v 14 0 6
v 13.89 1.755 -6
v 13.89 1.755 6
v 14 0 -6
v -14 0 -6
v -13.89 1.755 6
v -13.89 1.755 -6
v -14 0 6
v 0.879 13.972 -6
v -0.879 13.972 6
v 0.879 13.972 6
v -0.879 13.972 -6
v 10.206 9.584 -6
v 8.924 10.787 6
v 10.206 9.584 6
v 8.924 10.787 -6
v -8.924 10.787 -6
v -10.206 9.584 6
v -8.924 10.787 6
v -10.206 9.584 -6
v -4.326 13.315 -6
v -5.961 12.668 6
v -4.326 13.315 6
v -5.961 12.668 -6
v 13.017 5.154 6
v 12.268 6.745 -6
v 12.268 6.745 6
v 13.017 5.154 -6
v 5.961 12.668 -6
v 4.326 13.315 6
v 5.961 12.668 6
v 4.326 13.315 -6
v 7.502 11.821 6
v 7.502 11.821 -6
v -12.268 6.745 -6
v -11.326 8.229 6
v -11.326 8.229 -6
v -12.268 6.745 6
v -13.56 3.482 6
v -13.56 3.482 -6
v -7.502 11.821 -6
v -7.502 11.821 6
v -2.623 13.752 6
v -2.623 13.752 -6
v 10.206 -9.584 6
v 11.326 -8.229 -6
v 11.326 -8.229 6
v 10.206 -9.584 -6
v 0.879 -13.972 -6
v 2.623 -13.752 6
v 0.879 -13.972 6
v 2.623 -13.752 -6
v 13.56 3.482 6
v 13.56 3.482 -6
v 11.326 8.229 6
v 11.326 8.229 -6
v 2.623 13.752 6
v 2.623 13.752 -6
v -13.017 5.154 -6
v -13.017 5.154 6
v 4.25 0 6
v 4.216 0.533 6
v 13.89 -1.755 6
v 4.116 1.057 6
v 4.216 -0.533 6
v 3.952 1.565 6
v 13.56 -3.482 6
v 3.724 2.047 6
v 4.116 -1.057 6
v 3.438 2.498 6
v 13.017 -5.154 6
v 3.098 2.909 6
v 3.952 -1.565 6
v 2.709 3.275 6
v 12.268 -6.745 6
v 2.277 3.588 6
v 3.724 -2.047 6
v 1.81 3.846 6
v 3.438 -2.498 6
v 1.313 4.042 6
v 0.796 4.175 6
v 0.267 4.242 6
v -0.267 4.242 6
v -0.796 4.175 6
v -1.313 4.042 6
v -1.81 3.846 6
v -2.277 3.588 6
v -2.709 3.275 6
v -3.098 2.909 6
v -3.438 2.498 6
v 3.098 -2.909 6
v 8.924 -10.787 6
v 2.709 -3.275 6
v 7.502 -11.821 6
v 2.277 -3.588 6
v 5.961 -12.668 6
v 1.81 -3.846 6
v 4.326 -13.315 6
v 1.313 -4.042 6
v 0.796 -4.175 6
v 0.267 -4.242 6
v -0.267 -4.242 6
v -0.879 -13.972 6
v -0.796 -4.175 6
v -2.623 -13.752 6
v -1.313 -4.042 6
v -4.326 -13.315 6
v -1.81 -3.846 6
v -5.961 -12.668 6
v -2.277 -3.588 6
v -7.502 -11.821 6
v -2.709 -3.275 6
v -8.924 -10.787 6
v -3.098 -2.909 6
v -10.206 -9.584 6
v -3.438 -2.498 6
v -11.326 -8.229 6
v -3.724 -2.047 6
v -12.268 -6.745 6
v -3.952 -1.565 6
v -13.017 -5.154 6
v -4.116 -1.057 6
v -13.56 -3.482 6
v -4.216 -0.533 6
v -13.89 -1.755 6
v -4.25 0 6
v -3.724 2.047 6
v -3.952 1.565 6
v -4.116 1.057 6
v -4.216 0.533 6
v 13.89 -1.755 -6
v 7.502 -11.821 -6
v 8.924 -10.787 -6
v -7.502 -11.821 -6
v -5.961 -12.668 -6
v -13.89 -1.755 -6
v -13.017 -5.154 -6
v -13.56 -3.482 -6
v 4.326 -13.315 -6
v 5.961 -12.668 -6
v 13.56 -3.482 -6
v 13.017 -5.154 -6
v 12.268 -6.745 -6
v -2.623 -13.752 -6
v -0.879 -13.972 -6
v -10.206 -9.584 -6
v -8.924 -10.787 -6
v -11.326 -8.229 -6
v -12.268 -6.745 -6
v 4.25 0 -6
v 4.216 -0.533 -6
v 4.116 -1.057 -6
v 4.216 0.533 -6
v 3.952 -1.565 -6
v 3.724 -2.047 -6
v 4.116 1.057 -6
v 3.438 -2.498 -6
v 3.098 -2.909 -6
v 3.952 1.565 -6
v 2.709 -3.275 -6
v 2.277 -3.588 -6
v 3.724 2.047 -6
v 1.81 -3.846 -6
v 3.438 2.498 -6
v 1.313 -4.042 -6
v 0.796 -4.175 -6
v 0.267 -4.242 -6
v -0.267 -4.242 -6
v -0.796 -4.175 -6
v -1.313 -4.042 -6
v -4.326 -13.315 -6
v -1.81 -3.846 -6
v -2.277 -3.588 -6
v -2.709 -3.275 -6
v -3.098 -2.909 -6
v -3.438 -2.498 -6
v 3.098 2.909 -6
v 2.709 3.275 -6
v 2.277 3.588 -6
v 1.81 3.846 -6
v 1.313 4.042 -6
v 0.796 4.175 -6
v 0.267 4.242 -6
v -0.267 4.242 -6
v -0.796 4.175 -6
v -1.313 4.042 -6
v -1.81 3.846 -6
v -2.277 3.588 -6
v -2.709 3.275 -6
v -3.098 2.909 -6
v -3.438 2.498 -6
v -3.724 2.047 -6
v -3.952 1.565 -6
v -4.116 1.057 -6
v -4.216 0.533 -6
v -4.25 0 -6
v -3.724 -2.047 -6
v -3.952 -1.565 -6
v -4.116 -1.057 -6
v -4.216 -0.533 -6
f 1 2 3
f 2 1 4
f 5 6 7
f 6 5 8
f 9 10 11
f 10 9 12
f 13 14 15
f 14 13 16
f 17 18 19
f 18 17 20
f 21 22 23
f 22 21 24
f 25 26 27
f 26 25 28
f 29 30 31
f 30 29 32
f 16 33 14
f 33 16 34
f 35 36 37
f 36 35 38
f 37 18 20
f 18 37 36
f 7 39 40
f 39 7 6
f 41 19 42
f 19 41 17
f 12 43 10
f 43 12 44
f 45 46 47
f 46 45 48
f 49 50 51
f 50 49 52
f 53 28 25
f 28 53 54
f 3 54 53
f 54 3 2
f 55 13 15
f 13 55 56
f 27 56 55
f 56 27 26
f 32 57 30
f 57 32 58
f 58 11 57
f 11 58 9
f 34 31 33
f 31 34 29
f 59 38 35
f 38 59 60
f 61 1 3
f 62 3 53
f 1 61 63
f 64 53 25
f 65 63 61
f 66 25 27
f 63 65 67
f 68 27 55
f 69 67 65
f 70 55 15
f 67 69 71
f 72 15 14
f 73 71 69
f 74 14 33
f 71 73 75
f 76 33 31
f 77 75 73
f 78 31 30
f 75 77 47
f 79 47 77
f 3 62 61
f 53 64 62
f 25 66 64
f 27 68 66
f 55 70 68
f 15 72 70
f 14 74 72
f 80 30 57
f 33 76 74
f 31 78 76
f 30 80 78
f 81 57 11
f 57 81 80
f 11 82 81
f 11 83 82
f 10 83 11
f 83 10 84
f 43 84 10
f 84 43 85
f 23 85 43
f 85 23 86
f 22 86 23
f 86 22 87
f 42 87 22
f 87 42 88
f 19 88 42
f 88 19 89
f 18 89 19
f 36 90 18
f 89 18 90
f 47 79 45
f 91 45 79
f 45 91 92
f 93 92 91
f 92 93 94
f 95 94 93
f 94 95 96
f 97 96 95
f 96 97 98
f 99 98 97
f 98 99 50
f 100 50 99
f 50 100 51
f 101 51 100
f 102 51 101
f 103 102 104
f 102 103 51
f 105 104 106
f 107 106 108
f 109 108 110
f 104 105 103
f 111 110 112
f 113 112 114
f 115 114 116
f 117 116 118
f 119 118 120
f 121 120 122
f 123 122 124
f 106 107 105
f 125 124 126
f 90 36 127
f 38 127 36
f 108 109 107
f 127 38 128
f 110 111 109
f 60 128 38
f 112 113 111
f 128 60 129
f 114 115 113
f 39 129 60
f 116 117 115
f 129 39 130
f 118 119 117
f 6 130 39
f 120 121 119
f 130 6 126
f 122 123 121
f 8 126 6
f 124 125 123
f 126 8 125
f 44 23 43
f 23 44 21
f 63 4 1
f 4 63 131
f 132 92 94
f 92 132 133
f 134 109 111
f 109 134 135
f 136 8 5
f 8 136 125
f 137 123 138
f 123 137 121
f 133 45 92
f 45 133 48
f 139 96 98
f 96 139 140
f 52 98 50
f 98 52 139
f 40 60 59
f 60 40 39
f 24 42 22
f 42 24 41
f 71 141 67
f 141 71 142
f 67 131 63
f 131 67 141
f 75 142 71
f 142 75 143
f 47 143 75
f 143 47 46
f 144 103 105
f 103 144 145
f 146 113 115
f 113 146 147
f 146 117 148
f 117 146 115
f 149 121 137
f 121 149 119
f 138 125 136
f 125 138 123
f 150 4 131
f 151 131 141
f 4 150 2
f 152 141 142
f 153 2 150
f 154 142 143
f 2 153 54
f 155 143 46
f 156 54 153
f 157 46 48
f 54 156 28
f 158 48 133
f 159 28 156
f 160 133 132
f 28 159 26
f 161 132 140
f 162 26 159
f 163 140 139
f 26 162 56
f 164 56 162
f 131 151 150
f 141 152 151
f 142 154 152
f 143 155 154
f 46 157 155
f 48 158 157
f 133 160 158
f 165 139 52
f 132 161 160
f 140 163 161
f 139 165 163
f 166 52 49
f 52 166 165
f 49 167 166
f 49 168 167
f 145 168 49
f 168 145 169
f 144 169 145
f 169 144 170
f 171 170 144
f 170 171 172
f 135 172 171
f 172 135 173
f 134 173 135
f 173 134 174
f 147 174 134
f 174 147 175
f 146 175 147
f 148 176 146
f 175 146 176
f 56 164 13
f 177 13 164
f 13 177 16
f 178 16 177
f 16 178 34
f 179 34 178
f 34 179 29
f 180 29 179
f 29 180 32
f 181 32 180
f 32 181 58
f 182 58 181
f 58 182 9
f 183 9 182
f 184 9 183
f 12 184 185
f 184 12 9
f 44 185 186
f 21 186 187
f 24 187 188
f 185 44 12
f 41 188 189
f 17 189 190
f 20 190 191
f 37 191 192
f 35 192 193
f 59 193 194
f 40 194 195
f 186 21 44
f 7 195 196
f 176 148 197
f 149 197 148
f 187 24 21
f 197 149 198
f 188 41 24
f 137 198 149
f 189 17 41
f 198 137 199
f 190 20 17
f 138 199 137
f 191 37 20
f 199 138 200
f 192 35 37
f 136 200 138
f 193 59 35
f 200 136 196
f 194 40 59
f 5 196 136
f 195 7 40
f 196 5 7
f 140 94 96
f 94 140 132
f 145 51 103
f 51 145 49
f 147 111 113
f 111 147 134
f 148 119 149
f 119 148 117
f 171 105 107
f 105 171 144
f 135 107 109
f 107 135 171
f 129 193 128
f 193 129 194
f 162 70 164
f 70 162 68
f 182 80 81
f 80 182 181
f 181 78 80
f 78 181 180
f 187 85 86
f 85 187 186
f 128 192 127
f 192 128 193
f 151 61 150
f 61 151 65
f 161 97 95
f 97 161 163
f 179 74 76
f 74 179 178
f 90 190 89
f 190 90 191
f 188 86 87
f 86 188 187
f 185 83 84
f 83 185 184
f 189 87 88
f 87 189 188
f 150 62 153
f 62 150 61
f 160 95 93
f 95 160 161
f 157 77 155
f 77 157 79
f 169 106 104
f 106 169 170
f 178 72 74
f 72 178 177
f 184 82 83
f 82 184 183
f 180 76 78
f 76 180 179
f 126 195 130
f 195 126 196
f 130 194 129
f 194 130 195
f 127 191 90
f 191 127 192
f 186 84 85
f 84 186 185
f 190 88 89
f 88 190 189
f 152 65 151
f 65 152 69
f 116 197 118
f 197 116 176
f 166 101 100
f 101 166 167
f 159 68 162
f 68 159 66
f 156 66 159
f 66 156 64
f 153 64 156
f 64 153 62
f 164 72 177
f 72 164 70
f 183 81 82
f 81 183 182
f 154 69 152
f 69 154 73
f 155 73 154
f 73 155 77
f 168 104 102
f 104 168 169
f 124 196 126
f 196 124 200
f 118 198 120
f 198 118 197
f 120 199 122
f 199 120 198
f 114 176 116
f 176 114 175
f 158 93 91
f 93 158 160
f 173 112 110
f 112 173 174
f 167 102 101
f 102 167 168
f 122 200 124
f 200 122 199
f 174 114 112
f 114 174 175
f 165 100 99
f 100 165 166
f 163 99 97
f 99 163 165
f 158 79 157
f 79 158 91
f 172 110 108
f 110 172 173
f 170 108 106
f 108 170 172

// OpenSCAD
$fn = 50;


difference() {
	union() {
		translate(v = [0, 0, -6.0000000000]) {
			cylinder(h = 12, r = 14.0000000000);
		}
	}
	union() {
		translate(v = [0, 0, -100.0000000000]) {
			cylinder(h = 200, r = 4.2500000000);
		}
	}
}
